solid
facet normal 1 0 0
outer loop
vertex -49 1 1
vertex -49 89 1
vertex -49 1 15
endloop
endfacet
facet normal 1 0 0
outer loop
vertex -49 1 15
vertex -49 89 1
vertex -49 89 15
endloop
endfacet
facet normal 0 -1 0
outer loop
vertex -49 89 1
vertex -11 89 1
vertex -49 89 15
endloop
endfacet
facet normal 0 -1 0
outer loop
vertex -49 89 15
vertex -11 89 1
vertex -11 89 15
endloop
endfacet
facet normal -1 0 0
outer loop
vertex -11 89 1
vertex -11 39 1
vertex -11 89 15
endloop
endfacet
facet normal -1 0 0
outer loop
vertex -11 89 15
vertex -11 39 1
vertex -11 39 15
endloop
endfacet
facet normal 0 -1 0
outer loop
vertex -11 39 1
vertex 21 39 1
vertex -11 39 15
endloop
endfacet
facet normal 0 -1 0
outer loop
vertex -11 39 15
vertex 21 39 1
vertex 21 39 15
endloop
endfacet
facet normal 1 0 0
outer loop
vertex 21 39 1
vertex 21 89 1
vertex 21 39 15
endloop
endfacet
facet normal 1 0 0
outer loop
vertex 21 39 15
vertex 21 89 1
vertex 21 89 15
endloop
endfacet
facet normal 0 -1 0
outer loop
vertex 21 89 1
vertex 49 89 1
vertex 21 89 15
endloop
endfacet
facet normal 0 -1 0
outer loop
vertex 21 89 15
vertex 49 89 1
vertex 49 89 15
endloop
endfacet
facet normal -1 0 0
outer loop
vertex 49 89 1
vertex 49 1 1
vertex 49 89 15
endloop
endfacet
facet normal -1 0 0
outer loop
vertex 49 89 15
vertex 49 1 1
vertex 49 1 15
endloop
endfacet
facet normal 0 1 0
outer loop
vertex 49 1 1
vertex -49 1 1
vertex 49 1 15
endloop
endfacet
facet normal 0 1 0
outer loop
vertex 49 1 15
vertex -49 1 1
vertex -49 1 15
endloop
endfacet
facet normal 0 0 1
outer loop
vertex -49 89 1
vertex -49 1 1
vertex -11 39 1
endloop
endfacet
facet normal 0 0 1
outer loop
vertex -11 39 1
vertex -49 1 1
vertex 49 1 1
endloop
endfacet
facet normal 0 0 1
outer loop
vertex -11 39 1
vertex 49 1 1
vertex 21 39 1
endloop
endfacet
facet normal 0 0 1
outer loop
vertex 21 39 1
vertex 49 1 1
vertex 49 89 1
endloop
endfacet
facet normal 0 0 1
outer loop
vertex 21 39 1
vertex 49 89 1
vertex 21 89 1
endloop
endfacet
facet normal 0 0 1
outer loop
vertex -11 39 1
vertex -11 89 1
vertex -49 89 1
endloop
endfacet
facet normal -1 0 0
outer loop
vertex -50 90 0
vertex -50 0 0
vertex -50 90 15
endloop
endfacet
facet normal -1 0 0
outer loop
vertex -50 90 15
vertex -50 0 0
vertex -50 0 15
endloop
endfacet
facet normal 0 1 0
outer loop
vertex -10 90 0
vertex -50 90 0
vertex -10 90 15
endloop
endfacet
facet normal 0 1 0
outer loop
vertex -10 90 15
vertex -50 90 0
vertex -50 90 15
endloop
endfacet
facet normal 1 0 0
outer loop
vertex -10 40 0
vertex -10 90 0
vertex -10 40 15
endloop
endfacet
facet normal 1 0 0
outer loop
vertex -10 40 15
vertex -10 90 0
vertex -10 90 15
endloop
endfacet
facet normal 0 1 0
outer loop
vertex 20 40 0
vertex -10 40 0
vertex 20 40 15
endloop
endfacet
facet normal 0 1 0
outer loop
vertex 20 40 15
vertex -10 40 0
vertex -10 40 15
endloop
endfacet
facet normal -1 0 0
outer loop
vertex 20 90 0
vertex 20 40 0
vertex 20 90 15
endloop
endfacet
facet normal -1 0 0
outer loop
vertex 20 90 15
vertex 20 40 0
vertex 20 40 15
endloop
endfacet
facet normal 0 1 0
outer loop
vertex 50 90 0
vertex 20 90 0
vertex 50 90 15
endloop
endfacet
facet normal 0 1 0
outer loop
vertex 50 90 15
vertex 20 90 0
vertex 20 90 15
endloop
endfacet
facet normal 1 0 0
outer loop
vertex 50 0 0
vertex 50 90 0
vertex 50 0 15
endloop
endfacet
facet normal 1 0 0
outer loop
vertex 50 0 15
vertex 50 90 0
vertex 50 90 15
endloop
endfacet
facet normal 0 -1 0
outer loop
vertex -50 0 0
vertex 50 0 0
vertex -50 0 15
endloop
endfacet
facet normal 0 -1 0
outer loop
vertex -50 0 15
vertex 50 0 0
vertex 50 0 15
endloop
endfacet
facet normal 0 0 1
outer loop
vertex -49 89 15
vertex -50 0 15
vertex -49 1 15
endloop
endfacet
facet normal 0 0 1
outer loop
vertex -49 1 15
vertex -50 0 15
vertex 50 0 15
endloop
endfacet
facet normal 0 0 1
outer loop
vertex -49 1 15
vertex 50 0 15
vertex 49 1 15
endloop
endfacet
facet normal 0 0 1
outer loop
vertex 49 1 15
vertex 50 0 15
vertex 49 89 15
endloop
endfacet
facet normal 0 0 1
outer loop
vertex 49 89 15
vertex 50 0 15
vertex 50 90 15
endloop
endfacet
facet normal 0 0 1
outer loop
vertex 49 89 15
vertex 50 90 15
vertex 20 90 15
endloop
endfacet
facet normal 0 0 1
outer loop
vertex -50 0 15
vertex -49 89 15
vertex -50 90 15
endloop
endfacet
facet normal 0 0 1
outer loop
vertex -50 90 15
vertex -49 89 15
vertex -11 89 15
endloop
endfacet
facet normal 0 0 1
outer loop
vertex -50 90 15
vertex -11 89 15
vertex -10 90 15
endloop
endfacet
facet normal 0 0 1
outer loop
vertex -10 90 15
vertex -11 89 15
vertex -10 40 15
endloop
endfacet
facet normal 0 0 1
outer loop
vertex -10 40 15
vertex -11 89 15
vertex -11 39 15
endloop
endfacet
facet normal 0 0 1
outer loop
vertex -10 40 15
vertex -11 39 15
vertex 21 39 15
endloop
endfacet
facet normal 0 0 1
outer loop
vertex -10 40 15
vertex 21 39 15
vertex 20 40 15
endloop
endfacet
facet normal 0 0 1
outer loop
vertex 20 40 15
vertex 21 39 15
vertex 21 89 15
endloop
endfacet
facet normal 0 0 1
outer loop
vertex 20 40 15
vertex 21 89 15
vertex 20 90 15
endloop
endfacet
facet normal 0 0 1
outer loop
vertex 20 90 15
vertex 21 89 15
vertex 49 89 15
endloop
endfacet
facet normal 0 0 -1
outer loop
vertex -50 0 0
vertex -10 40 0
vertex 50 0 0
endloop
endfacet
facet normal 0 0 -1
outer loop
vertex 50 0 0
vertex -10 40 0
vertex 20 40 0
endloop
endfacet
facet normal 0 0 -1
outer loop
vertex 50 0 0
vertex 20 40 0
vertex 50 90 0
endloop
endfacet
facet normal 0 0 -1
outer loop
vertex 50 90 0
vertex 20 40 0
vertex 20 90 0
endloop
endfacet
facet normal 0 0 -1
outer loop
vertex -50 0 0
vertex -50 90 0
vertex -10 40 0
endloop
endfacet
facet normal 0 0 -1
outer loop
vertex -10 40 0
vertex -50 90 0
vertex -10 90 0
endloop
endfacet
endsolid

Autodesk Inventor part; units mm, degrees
ref_plane "YZ Plane" through (0, 0, 0) normal (1, 0, 0) x (0, 1, 0)
ref_plane "XZ Plane" through (0, 0, 0) normal (0, 1, 0) x (-1, 0, 0)
ref_plane "XY Plane" through (0, 0, 0) normal (0, 0, 1) x (1, 0, 0)
sketch "Sketch1" plane through (0, 0, 0) normal (0, 0, 1) x (1, 0, 0)
  line L0 (0, 0) -> (-50, 0) construction
  line L1 (0, 0) -> (50, 0) construction
  line L2 (-50, 0) -> (50, 0)
  line L3 (-50, 0) -> (-50, 90)
  line L4 (-79, 0) -> (-79, 40) construction
  line L5 (-79, 40) -> (-79, 90) construction
  line L6 (-50, 90) -> (-10, 90)
  line L7 (-50, 100.5212) -> (20, 100.5212) construction
  line L8 (-10, 90) -> (-10, 40)
  line L9 (-10, 40) -> (20, 40)
  line L10 (20, 40) -> (20, 90)
  line L11 (20, 90) -> (50, 90)
  line L12 (50, 90) -> (50, 0)
  dimension "d2" = 90
  dimension "d3" = 40
  dimension "d4" = 50
  dimension "d5" = 40
  dimension "d6" = 70
extrude "Extrusion1" add sketch "Sketch1" along normal blind 15
shell "Shell1" thickness 1 removed faces 1 at (-3.3333, 13.3333, 15)
properties part number "shim_3DPrint"
